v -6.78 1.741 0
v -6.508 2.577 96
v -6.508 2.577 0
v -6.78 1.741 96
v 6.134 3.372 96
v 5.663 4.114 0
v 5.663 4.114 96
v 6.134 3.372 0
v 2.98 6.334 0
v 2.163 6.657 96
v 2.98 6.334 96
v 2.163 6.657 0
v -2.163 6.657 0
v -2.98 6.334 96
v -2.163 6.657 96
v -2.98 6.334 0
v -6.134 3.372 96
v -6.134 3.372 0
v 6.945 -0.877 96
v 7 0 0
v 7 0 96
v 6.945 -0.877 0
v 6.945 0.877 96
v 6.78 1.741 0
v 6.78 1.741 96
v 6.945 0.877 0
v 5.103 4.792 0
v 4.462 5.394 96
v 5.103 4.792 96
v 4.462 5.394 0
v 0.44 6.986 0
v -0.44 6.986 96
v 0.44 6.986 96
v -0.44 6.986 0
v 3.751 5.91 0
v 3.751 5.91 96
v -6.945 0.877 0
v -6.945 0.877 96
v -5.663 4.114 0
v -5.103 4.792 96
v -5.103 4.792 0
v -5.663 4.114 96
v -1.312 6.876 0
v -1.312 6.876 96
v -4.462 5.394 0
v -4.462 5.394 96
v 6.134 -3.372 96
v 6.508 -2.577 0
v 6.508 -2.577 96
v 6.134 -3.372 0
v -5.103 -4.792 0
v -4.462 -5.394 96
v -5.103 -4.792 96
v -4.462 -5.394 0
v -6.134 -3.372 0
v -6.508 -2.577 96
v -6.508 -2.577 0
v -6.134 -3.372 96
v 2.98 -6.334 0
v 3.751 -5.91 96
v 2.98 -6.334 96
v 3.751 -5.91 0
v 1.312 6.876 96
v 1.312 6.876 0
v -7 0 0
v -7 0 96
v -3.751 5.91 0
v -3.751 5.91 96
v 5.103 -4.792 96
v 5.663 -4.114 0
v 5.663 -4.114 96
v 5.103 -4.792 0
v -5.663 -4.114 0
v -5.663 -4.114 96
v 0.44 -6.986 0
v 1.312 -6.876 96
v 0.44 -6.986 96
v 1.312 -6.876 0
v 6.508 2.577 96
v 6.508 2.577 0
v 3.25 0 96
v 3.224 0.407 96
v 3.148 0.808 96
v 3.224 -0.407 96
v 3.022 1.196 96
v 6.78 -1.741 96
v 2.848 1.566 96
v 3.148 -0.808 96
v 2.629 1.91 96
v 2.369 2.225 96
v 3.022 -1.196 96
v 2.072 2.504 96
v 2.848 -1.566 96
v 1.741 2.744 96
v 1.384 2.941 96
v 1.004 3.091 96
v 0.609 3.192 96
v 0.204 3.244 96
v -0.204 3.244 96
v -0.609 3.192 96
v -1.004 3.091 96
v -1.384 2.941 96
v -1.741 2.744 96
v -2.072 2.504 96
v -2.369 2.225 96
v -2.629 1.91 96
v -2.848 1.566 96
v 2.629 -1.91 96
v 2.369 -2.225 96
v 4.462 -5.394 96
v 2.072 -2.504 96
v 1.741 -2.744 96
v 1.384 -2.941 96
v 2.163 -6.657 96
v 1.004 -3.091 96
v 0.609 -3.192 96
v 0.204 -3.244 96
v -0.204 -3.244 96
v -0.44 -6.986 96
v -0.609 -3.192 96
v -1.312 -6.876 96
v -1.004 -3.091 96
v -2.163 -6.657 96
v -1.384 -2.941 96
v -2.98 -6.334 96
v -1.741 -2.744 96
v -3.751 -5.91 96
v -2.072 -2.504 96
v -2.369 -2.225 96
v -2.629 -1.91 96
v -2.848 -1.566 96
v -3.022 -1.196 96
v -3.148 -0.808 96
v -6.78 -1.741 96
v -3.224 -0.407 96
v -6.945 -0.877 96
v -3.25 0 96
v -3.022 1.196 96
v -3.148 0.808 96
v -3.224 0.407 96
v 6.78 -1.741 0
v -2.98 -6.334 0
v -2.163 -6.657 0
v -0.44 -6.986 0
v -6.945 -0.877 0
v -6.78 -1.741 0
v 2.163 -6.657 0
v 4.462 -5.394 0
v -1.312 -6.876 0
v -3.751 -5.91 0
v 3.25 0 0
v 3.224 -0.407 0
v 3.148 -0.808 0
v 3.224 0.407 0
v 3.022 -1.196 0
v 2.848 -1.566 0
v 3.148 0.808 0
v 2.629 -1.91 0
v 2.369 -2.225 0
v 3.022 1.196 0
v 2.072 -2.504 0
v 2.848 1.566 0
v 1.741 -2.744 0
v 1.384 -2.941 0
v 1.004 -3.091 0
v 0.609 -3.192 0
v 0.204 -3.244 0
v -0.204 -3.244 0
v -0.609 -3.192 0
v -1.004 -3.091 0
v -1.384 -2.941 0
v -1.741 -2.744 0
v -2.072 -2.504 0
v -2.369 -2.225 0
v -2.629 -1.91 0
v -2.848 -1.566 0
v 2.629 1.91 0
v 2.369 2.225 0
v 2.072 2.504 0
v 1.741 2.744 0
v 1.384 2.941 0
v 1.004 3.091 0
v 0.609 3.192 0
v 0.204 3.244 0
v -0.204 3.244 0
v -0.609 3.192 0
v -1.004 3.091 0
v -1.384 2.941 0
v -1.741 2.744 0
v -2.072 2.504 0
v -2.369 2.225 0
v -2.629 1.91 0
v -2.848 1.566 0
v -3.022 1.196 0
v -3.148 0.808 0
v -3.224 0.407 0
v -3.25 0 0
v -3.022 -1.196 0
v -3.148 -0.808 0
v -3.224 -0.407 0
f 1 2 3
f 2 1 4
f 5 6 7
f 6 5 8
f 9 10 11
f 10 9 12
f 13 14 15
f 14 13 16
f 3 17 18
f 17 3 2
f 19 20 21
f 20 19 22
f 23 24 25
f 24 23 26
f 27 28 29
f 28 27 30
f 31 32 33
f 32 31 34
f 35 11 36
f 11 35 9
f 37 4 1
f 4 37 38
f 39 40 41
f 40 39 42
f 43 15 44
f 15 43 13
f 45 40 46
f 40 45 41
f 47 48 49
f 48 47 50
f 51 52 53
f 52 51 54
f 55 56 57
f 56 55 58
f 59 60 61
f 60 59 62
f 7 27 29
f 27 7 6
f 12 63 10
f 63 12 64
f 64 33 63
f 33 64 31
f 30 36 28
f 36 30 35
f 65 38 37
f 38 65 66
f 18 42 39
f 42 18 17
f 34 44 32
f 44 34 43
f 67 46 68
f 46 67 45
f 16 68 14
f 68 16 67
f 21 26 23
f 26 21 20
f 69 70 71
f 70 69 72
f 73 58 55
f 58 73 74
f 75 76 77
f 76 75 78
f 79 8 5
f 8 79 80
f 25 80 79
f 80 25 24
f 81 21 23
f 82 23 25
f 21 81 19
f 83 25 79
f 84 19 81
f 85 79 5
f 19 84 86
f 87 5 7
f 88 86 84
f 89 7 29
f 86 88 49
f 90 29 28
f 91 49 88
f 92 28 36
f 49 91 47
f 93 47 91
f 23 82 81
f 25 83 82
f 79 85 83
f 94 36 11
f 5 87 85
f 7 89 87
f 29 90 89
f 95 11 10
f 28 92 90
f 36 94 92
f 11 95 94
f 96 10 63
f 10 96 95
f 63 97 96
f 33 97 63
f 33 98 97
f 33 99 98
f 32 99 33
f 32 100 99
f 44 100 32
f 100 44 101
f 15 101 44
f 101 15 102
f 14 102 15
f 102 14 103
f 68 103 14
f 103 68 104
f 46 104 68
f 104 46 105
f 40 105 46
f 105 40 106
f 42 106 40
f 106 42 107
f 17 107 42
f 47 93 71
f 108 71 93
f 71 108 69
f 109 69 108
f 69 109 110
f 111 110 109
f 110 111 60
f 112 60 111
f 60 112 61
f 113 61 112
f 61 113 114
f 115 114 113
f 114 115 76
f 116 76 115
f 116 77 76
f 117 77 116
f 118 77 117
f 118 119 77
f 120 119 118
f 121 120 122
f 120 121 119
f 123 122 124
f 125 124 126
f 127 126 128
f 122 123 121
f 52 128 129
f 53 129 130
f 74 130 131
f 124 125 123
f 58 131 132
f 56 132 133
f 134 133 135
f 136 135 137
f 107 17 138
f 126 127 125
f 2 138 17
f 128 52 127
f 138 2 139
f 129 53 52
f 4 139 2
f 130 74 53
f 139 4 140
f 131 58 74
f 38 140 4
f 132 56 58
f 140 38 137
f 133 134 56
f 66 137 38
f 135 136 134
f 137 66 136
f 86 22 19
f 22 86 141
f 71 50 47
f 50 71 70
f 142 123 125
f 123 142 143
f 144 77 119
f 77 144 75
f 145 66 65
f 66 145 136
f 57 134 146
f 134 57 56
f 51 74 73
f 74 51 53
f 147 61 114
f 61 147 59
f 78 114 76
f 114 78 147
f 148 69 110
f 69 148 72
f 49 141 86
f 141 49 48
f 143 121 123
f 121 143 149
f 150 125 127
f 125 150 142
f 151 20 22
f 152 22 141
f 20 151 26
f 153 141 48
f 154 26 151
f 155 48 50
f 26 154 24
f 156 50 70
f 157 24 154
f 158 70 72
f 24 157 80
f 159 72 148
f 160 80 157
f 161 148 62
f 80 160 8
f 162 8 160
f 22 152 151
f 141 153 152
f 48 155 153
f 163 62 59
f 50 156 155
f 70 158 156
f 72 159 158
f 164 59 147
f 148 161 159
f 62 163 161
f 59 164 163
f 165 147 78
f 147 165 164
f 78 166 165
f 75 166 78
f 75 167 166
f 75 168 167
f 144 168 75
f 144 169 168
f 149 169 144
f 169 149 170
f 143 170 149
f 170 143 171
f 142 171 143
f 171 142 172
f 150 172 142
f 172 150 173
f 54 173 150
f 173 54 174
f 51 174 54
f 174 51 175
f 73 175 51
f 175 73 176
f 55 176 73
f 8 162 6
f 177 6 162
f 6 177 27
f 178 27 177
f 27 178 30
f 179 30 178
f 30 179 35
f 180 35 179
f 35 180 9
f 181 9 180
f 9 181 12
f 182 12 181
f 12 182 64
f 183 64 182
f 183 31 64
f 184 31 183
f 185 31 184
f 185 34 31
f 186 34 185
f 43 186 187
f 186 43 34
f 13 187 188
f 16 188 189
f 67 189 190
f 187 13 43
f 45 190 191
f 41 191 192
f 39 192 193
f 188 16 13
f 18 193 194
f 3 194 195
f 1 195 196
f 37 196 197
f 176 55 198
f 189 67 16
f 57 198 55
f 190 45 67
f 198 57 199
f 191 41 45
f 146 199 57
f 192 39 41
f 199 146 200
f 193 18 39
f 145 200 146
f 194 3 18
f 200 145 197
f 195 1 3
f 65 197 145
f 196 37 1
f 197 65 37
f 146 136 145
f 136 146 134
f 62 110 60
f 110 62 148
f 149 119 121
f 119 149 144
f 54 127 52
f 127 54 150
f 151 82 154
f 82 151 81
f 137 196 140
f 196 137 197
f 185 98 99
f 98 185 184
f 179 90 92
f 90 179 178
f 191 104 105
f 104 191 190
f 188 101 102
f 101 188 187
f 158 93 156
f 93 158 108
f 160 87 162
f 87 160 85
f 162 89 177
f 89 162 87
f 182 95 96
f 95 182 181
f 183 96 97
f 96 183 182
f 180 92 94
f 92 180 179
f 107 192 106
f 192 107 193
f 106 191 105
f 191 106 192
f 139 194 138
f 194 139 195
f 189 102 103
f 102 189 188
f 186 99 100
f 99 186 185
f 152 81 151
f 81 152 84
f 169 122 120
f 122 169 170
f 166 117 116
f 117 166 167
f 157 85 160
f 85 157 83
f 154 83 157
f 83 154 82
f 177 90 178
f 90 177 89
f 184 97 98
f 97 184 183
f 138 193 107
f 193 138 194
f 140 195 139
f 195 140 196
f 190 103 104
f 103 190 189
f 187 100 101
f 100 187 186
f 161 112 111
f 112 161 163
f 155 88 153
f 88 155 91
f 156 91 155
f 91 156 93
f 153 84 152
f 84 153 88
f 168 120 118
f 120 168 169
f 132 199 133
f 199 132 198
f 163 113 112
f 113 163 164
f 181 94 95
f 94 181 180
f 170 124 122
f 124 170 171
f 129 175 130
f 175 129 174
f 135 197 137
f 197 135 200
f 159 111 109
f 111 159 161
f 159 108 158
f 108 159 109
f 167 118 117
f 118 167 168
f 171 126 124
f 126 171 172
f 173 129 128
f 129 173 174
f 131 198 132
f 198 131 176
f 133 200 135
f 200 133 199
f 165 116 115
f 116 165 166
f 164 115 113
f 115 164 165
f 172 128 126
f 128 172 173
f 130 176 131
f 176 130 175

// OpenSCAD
$fn = 50;


difference() {
	union() {
		cylinder(h = 96, r = 7.0000000000);
	}
	union() {
		translate(v = [0.0000000000, 0.0000000000, -100.0000000000]) {
			cylinder(h = 200, r = 3.2500000000);
		}
	}
}
